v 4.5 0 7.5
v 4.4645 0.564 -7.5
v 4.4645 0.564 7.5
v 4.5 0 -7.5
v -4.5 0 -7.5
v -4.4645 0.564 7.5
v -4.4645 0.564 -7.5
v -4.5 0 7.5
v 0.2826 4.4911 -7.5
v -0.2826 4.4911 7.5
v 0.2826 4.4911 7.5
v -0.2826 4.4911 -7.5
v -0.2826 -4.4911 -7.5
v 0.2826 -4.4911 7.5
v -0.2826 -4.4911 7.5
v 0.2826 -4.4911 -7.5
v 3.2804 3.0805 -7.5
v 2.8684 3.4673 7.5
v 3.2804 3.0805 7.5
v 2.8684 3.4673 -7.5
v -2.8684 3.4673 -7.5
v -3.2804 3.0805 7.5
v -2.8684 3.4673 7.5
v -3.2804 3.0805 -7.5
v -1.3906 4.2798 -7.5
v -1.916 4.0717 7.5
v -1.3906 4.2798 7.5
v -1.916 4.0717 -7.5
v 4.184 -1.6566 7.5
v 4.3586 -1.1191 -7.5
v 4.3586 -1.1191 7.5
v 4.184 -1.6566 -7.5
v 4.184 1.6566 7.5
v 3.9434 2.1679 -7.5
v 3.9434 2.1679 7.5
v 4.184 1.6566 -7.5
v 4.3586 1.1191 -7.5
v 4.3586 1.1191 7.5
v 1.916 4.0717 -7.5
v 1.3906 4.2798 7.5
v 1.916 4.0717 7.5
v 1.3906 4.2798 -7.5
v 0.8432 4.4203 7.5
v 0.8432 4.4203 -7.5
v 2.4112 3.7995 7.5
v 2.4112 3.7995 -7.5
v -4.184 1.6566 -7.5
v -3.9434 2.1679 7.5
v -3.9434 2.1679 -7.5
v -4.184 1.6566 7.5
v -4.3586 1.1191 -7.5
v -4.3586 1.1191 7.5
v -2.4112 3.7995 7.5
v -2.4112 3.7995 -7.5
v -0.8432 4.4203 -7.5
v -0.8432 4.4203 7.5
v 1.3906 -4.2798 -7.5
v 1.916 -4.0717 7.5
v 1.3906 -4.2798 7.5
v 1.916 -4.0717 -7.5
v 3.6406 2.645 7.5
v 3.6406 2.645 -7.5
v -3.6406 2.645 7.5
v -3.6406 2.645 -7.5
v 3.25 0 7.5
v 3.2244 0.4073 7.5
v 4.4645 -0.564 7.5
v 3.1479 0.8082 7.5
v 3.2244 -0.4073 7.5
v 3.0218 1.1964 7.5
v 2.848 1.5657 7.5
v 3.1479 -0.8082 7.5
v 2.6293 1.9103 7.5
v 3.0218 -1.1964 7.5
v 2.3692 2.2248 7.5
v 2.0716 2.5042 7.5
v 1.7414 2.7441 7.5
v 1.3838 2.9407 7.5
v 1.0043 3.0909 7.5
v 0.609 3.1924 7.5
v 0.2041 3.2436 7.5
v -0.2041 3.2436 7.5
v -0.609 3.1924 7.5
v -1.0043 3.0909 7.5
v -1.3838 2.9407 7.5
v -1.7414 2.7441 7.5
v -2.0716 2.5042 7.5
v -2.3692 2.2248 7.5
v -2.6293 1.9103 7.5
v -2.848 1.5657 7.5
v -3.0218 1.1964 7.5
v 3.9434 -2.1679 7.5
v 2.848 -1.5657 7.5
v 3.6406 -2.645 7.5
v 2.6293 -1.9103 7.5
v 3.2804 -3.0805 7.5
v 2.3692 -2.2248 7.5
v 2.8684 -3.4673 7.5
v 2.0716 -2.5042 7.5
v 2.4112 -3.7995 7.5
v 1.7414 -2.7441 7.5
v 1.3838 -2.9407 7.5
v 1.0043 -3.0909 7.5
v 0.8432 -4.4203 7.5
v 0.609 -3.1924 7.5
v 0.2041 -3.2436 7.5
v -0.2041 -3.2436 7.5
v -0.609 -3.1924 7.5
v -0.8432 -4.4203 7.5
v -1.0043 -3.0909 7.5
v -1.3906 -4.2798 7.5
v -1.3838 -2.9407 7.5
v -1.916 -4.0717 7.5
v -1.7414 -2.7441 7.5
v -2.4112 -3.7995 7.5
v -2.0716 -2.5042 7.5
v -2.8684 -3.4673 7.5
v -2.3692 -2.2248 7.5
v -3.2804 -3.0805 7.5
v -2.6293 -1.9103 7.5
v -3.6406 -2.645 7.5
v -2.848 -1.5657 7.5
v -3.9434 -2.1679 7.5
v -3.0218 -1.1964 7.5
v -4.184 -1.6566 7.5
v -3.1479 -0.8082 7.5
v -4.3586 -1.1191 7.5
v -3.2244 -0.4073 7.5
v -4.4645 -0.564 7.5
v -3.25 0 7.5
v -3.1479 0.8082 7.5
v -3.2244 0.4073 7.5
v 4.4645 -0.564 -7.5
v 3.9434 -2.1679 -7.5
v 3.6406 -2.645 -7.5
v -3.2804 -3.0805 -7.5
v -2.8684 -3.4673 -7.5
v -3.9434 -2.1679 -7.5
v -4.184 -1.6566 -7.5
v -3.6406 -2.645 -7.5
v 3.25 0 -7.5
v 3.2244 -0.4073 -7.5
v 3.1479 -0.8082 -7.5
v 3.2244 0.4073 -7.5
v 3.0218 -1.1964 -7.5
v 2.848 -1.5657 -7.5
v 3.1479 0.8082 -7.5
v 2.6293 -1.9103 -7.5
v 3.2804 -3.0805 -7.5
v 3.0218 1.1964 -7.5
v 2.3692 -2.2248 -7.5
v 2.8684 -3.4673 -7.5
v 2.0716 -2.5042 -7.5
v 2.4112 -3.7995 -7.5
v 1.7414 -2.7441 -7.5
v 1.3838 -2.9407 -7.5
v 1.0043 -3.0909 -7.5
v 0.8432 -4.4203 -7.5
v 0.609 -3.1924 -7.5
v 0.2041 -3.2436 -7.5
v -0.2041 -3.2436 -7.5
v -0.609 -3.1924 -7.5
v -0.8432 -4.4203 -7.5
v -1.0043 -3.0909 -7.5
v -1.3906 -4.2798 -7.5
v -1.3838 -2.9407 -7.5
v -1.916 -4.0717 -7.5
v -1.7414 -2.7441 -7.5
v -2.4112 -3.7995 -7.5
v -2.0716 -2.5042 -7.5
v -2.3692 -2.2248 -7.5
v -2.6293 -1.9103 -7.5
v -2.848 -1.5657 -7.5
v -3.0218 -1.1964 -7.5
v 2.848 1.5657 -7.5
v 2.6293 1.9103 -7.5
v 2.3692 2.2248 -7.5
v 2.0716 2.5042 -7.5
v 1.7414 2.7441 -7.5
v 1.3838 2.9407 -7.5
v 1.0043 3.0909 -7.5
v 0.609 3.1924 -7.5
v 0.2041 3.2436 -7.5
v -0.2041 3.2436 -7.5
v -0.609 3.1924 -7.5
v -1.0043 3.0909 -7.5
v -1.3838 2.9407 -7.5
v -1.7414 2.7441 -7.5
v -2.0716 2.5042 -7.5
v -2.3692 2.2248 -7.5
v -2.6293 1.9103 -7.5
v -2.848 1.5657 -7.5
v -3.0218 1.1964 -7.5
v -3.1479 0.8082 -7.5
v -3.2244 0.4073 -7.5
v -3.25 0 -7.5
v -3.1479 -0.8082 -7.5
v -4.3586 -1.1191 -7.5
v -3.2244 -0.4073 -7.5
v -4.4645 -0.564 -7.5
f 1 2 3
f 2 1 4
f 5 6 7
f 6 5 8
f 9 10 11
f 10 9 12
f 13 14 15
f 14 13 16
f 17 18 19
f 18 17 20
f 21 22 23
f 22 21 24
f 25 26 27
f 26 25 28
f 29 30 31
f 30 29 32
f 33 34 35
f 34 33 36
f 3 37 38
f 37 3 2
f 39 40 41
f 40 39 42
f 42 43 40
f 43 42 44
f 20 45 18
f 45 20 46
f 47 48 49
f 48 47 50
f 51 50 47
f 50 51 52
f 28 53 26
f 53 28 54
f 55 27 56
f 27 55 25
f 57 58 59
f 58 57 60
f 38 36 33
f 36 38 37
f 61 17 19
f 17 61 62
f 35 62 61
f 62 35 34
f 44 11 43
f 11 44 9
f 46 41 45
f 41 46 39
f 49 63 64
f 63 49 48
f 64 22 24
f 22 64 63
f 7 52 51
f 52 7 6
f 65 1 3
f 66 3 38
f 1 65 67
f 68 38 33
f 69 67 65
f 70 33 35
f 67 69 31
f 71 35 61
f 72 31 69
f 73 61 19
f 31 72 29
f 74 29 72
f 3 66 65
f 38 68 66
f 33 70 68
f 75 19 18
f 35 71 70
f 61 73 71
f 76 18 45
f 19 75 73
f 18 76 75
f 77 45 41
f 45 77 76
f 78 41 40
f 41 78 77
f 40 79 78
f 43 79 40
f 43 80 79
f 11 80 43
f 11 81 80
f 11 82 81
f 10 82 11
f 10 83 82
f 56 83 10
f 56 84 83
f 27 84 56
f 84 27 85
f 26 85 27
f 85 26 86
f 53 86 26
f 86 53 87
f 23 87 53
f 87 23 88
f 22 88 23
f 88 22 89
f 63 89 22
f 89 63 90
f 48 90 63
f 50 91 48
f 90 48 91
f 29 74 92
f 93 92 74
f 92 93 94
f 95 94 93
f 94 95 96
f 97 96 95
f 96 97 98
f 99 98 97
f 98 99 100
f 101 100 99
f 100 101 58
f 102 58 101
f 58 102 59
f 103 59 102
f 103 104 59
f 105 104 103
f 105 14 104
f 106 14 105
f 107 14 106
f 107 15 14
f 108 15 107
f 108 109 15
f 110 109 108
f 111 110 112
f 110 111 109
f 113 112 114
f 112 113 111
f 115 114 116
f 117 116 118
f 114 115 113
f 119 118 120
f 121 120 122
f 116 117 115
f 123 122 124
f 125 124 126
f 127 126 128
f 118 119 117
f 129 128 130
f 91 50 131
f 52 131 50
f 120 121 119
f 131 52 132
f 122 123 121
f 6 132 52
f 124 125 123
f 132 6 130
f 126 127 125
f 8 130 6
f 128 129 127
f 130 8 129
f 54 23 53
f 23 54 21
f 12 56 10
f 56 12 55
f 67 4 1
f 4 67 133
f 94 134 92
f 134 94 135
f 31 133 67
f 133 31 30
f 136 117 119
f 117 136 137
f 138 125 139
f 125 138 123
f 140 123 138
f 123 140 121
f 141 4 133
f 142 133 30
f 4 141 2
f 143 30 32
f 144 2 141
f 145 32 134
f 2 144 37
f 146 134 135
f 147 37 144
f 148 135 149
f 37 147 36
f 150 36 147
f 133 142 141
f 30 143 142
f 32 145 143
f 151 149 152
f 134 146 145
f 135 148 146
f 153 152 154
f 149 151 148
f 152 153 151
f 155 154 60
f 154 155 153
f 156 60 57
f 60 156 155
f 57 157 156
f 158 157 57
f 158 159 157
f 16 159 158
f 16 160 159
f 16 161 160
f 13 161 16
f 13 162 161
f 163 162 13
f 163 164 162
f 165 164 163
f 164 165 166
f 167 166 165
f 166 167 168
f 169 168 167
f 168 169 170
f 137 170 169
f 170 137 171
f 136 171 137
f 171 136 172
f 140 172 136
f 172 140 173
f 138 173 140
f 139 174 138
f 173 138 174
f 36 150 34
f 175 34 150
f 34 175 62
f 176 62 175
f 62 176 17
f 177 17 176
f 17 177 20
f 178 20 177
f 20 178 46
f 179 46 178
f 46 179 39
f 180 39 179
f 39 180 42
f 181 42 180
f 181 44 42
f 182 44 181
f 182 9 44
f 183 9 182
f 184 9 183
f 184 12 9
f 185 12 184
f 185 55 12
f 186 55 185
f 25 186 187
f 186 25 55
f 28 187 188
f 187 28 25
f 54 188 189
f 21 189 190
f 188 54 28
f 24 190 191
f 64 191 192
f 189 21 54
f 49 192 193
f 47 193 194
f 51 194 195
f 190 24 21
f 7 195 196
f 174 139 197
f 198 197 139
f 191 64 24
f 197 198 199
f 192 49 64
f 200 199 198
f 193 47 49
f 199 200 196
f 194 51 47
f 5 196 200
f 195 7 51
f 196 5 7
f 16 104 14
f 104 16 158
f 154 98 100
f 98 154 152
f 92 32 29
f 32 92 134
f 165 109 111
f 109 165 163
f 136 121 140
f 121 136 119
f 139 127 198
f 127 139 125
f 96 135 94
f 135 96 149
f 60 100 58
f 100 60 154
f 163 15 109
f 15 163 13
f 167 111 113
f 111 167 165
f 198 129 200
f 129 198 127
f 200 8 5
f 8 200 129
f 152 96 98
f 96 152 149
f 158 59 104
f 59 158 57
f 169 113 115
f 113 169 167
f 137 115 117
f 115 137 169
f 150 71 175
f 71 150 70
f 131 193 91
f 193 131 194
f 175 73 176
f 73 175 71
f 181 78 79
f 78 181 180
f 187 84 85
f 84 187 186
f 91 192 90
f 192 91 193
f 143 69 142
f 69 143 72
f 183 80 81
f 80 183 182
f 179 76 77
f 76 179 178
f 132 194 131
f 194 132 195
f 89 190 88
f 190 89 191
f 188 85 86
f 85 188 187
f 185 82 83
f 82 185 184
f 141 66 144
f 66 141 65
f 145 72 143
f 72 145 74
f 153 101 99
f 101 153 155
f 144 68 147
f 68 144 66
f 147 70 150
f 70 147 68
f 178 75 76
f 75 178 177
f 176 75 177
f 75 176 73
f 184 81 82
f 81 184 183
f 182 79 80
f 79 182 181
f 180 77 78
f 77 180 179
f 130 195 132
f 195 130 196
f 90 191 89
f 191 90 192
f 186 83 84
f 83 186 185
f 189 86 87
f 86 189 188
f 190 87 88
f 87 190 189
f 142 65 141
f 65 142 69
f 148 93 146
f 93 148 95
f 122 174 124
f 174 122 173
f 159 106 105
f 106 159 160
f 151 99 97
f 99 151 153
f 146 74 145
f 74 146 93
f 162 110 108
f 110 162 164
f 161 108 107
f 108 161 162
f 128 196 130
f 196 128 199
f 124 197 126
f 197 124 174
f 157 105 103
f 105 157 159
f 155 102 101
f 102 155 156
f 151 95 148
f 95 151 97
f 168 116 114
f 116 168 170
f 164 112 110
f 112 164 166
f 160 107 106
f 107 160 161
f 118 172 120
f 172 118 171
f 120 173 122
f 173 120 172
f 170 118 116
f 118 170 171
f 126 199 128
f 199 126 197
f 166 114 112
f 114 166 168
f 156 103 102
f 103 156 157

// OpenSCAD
$fn = 50;


difference() {
	union() {
		translate(v = [0, 0, -7.5000000000]) {
			cylinder(h = 15, r = 4.5000000000);
		}
	}
	union() {
		translate(v = [0, 0, -100.0000000000]) {
			cylinder(h = 200, r = 3.2500000000);
		}
	}
}
